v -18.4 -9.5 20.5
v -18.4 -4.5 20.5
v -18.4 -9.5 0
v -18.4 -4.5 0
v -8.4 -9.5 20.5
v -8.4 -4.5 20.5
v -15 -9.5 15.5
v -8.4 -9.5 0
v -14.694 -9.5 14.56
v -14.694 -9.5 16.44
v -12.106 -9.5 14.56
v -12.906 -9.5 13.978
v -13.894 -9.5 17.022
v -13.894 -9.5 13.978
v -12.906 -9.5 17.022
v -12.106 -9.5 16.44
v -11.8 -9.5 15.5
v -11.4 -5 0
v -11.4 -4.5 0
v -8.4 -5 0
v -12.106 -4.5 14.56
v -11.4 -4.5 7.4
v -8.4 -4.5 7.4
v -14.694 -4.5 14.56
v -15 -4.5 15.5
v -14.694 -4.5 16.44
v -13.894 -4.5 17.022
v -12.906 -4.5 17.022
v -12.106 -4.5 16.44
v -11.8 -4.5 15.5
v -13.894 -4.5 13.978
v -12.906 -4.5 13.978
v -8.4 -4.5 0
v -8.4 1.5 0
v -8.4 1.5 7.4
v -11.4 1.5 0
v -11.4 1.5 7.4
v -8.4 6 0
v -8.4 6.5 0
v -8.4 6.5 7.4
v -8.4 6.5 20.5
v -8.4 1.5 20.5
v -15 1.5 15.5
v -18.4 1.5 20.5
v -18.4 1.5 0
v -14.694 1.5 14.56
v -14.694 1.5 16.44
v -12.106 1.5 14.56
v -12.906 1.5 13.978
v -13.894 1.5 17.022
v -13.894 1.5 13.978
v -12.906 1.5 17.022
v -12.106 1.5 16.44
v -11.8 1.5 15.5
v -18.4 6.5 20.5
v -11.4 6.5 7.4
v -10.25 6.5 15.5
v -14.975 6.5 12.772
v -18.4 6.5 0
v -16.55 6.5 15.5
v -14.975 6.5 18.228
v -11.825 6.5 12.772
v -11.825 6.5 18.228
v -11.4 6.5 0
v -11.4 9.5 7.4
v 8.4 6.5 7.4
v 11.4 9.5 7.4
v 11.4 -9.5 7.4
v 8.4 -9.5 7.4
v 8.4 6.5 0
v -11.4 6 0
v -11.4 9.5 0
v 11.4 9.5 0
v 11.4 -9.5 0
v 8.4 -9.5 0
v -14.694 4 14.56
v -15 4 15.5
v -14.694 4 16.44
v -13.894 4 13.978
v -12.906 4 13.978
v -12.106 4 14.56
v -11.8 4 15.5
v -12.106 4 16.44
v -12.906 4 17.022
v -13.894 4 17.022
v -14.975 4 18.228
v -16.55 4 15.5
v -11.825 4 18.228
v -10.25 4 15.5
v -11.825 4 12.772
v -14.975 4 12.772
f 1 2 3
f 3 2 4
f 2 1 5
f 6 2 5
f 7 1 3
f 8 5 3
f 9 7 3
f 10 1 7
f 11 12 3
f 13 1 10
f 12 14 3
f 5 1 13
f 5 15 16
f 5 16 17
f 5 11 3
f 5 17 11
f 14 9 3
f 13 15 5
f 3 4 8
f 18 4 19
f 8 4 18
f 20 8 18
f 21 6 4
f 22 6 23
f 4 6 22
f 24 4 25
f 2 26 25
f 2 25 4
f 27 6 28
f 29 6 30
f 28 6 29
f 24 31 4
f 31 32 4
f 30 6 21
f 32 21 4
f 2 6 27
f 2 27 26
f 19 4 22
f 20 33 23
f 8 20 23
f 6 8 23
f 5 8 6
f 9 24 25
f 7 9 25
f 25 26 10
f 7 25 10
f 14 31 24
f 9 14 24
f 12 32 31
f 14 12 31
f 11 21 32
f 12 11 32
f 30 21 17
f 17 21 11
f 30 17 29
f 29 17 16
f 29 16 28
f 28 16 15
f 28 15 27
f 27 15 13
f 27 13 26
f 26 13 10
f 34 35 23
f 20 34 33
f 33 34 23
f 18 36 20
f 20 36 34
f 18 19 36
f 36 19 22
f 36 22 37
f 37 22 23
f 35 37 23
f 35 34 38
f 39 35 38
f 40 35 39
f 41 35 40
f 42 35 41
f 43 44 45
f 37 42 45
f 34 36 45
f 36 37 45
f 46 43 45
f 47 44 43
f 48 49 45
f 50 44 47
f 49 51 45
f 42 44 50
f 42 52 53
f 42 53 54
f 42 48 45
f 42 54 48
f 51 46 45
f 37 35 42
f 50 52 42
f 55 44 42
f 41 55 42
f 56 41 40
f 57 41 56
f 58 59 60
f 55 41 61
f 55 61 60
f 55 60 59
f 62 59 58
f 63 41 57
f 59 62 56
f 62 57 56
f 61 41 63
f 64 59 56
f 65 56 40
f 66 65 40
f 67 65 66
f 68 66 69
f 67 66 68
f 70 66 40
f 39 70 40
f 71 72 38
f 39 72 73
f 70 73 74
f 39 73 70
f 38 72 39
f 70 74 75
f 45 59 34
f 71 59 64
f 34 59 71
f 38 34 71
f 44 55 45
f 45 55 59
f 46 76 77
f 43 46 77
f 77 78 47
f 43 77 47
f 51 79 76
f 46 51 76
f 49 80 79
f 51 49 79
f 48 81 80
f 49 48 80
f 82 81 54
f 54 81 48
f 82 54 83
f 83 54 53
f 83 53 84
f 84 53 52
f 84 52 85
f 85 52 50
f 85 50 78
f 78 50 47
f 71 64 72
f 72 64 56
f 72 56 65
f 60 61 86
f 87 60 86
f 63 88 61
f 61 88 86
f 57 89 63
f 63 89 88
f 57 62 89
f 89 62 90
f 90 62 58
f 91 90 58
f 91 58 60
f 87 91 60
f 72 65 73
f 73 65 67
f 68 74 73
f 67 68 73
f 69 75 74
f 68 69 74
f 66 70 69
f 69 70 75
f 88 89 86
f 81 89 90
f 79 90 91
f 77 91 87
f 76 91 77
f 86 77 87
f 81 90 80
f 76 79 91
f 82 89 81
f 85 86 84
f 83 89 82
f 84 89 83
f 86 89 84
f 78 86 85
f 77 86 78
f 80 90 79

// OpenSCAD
//---------------------------------------------------------------------------------------------------------
//-- Prusa z-endstop height regulator.
//--  You can easily change the initial home z-height with a screw
//-- Fine tune you initial z-height easily!
//--------------------------------------------------------------
//-- (c) Juan Gonzalez-Gomez (Obijuan)  juan@iearobotics.com.  July-2012
//-- Released under the GPL license
//---------------------------------------------------------------------------------------------------------- 

//----------------------------
//-- Clip parameters
//-----------------------------
thickness = 3;
lz_clip = 7.4;
lx_clip = 16.8;
ly_clip = 16;

//--- Extra distance for the differences
extra=2;

//------------------------------
//-- Arm parameters
//-------------------------------

//-- Drill distance. Where the screw should be located
//-- chage it according to your needs
dy = 15.5;

nut_box_side = 10;
nut_box_hi = 5;
nut_dia = 6.3;
nut_hi = 2.5;
M3_drill=3.2;

//-- The arm
module arm(add_nut=true)
{
  la_ly = dy + nut_box_side/2;

  //-- Rotate
  rotate([-90,0,0])

  //-- The design is on the xy plane
  difference() {
    translate([0, -la_ly/2,0])
      cube([nut_box_side, la_ly, nut_box_hi],center=true);

    //-- M3 Drill
    translate([0, -dy, 0])
      cylinder(r=M3_drill/2, h=nut_box_hi+extra, center=true, $fn=10);

    if (add_nut) {
      //-- M3 hex nut
       translate([0, -dy, nut_box_hi+extra/2 - nut_hi])
        cylinder(r=nut_dia/2, h=nut_box_hi+extra, center=true, $fn=6);
    }
  }
}

//----------------------
//-- Clip
//----------------------
module clip() {
  translate([0,0,lz_clip/2])
  difference() {
    //-- Exterior cube
    cube([lx_clip+2*thickness, ly_clip+thickness, lz_clip ],center=true);

    //-- Interior cube
    color("blue")
      translate([0, -(extra+thickness)/2, 0])
      cube([lx_clip, ly_clip+extra, lz_clip+extra],center=true);
  }
}

//-------------
//-- Main
//-------------

union() {

  //-- Clip
  clip();

  //-- Top arm
  translate([-nut_box_side/2 - lx_clip/2
                  ,-nut_box_hi/2 + ly_clip/2+thickness/2 - thickness,0])
    arm();

  //-- Bottom arm
  translate([-nut_box_side/2 - lx_clip/2 
                 ,nut_box_hi/2 - ly_clip/2-thickness/2,
                 0])
    arm(add_nut=false);
}
